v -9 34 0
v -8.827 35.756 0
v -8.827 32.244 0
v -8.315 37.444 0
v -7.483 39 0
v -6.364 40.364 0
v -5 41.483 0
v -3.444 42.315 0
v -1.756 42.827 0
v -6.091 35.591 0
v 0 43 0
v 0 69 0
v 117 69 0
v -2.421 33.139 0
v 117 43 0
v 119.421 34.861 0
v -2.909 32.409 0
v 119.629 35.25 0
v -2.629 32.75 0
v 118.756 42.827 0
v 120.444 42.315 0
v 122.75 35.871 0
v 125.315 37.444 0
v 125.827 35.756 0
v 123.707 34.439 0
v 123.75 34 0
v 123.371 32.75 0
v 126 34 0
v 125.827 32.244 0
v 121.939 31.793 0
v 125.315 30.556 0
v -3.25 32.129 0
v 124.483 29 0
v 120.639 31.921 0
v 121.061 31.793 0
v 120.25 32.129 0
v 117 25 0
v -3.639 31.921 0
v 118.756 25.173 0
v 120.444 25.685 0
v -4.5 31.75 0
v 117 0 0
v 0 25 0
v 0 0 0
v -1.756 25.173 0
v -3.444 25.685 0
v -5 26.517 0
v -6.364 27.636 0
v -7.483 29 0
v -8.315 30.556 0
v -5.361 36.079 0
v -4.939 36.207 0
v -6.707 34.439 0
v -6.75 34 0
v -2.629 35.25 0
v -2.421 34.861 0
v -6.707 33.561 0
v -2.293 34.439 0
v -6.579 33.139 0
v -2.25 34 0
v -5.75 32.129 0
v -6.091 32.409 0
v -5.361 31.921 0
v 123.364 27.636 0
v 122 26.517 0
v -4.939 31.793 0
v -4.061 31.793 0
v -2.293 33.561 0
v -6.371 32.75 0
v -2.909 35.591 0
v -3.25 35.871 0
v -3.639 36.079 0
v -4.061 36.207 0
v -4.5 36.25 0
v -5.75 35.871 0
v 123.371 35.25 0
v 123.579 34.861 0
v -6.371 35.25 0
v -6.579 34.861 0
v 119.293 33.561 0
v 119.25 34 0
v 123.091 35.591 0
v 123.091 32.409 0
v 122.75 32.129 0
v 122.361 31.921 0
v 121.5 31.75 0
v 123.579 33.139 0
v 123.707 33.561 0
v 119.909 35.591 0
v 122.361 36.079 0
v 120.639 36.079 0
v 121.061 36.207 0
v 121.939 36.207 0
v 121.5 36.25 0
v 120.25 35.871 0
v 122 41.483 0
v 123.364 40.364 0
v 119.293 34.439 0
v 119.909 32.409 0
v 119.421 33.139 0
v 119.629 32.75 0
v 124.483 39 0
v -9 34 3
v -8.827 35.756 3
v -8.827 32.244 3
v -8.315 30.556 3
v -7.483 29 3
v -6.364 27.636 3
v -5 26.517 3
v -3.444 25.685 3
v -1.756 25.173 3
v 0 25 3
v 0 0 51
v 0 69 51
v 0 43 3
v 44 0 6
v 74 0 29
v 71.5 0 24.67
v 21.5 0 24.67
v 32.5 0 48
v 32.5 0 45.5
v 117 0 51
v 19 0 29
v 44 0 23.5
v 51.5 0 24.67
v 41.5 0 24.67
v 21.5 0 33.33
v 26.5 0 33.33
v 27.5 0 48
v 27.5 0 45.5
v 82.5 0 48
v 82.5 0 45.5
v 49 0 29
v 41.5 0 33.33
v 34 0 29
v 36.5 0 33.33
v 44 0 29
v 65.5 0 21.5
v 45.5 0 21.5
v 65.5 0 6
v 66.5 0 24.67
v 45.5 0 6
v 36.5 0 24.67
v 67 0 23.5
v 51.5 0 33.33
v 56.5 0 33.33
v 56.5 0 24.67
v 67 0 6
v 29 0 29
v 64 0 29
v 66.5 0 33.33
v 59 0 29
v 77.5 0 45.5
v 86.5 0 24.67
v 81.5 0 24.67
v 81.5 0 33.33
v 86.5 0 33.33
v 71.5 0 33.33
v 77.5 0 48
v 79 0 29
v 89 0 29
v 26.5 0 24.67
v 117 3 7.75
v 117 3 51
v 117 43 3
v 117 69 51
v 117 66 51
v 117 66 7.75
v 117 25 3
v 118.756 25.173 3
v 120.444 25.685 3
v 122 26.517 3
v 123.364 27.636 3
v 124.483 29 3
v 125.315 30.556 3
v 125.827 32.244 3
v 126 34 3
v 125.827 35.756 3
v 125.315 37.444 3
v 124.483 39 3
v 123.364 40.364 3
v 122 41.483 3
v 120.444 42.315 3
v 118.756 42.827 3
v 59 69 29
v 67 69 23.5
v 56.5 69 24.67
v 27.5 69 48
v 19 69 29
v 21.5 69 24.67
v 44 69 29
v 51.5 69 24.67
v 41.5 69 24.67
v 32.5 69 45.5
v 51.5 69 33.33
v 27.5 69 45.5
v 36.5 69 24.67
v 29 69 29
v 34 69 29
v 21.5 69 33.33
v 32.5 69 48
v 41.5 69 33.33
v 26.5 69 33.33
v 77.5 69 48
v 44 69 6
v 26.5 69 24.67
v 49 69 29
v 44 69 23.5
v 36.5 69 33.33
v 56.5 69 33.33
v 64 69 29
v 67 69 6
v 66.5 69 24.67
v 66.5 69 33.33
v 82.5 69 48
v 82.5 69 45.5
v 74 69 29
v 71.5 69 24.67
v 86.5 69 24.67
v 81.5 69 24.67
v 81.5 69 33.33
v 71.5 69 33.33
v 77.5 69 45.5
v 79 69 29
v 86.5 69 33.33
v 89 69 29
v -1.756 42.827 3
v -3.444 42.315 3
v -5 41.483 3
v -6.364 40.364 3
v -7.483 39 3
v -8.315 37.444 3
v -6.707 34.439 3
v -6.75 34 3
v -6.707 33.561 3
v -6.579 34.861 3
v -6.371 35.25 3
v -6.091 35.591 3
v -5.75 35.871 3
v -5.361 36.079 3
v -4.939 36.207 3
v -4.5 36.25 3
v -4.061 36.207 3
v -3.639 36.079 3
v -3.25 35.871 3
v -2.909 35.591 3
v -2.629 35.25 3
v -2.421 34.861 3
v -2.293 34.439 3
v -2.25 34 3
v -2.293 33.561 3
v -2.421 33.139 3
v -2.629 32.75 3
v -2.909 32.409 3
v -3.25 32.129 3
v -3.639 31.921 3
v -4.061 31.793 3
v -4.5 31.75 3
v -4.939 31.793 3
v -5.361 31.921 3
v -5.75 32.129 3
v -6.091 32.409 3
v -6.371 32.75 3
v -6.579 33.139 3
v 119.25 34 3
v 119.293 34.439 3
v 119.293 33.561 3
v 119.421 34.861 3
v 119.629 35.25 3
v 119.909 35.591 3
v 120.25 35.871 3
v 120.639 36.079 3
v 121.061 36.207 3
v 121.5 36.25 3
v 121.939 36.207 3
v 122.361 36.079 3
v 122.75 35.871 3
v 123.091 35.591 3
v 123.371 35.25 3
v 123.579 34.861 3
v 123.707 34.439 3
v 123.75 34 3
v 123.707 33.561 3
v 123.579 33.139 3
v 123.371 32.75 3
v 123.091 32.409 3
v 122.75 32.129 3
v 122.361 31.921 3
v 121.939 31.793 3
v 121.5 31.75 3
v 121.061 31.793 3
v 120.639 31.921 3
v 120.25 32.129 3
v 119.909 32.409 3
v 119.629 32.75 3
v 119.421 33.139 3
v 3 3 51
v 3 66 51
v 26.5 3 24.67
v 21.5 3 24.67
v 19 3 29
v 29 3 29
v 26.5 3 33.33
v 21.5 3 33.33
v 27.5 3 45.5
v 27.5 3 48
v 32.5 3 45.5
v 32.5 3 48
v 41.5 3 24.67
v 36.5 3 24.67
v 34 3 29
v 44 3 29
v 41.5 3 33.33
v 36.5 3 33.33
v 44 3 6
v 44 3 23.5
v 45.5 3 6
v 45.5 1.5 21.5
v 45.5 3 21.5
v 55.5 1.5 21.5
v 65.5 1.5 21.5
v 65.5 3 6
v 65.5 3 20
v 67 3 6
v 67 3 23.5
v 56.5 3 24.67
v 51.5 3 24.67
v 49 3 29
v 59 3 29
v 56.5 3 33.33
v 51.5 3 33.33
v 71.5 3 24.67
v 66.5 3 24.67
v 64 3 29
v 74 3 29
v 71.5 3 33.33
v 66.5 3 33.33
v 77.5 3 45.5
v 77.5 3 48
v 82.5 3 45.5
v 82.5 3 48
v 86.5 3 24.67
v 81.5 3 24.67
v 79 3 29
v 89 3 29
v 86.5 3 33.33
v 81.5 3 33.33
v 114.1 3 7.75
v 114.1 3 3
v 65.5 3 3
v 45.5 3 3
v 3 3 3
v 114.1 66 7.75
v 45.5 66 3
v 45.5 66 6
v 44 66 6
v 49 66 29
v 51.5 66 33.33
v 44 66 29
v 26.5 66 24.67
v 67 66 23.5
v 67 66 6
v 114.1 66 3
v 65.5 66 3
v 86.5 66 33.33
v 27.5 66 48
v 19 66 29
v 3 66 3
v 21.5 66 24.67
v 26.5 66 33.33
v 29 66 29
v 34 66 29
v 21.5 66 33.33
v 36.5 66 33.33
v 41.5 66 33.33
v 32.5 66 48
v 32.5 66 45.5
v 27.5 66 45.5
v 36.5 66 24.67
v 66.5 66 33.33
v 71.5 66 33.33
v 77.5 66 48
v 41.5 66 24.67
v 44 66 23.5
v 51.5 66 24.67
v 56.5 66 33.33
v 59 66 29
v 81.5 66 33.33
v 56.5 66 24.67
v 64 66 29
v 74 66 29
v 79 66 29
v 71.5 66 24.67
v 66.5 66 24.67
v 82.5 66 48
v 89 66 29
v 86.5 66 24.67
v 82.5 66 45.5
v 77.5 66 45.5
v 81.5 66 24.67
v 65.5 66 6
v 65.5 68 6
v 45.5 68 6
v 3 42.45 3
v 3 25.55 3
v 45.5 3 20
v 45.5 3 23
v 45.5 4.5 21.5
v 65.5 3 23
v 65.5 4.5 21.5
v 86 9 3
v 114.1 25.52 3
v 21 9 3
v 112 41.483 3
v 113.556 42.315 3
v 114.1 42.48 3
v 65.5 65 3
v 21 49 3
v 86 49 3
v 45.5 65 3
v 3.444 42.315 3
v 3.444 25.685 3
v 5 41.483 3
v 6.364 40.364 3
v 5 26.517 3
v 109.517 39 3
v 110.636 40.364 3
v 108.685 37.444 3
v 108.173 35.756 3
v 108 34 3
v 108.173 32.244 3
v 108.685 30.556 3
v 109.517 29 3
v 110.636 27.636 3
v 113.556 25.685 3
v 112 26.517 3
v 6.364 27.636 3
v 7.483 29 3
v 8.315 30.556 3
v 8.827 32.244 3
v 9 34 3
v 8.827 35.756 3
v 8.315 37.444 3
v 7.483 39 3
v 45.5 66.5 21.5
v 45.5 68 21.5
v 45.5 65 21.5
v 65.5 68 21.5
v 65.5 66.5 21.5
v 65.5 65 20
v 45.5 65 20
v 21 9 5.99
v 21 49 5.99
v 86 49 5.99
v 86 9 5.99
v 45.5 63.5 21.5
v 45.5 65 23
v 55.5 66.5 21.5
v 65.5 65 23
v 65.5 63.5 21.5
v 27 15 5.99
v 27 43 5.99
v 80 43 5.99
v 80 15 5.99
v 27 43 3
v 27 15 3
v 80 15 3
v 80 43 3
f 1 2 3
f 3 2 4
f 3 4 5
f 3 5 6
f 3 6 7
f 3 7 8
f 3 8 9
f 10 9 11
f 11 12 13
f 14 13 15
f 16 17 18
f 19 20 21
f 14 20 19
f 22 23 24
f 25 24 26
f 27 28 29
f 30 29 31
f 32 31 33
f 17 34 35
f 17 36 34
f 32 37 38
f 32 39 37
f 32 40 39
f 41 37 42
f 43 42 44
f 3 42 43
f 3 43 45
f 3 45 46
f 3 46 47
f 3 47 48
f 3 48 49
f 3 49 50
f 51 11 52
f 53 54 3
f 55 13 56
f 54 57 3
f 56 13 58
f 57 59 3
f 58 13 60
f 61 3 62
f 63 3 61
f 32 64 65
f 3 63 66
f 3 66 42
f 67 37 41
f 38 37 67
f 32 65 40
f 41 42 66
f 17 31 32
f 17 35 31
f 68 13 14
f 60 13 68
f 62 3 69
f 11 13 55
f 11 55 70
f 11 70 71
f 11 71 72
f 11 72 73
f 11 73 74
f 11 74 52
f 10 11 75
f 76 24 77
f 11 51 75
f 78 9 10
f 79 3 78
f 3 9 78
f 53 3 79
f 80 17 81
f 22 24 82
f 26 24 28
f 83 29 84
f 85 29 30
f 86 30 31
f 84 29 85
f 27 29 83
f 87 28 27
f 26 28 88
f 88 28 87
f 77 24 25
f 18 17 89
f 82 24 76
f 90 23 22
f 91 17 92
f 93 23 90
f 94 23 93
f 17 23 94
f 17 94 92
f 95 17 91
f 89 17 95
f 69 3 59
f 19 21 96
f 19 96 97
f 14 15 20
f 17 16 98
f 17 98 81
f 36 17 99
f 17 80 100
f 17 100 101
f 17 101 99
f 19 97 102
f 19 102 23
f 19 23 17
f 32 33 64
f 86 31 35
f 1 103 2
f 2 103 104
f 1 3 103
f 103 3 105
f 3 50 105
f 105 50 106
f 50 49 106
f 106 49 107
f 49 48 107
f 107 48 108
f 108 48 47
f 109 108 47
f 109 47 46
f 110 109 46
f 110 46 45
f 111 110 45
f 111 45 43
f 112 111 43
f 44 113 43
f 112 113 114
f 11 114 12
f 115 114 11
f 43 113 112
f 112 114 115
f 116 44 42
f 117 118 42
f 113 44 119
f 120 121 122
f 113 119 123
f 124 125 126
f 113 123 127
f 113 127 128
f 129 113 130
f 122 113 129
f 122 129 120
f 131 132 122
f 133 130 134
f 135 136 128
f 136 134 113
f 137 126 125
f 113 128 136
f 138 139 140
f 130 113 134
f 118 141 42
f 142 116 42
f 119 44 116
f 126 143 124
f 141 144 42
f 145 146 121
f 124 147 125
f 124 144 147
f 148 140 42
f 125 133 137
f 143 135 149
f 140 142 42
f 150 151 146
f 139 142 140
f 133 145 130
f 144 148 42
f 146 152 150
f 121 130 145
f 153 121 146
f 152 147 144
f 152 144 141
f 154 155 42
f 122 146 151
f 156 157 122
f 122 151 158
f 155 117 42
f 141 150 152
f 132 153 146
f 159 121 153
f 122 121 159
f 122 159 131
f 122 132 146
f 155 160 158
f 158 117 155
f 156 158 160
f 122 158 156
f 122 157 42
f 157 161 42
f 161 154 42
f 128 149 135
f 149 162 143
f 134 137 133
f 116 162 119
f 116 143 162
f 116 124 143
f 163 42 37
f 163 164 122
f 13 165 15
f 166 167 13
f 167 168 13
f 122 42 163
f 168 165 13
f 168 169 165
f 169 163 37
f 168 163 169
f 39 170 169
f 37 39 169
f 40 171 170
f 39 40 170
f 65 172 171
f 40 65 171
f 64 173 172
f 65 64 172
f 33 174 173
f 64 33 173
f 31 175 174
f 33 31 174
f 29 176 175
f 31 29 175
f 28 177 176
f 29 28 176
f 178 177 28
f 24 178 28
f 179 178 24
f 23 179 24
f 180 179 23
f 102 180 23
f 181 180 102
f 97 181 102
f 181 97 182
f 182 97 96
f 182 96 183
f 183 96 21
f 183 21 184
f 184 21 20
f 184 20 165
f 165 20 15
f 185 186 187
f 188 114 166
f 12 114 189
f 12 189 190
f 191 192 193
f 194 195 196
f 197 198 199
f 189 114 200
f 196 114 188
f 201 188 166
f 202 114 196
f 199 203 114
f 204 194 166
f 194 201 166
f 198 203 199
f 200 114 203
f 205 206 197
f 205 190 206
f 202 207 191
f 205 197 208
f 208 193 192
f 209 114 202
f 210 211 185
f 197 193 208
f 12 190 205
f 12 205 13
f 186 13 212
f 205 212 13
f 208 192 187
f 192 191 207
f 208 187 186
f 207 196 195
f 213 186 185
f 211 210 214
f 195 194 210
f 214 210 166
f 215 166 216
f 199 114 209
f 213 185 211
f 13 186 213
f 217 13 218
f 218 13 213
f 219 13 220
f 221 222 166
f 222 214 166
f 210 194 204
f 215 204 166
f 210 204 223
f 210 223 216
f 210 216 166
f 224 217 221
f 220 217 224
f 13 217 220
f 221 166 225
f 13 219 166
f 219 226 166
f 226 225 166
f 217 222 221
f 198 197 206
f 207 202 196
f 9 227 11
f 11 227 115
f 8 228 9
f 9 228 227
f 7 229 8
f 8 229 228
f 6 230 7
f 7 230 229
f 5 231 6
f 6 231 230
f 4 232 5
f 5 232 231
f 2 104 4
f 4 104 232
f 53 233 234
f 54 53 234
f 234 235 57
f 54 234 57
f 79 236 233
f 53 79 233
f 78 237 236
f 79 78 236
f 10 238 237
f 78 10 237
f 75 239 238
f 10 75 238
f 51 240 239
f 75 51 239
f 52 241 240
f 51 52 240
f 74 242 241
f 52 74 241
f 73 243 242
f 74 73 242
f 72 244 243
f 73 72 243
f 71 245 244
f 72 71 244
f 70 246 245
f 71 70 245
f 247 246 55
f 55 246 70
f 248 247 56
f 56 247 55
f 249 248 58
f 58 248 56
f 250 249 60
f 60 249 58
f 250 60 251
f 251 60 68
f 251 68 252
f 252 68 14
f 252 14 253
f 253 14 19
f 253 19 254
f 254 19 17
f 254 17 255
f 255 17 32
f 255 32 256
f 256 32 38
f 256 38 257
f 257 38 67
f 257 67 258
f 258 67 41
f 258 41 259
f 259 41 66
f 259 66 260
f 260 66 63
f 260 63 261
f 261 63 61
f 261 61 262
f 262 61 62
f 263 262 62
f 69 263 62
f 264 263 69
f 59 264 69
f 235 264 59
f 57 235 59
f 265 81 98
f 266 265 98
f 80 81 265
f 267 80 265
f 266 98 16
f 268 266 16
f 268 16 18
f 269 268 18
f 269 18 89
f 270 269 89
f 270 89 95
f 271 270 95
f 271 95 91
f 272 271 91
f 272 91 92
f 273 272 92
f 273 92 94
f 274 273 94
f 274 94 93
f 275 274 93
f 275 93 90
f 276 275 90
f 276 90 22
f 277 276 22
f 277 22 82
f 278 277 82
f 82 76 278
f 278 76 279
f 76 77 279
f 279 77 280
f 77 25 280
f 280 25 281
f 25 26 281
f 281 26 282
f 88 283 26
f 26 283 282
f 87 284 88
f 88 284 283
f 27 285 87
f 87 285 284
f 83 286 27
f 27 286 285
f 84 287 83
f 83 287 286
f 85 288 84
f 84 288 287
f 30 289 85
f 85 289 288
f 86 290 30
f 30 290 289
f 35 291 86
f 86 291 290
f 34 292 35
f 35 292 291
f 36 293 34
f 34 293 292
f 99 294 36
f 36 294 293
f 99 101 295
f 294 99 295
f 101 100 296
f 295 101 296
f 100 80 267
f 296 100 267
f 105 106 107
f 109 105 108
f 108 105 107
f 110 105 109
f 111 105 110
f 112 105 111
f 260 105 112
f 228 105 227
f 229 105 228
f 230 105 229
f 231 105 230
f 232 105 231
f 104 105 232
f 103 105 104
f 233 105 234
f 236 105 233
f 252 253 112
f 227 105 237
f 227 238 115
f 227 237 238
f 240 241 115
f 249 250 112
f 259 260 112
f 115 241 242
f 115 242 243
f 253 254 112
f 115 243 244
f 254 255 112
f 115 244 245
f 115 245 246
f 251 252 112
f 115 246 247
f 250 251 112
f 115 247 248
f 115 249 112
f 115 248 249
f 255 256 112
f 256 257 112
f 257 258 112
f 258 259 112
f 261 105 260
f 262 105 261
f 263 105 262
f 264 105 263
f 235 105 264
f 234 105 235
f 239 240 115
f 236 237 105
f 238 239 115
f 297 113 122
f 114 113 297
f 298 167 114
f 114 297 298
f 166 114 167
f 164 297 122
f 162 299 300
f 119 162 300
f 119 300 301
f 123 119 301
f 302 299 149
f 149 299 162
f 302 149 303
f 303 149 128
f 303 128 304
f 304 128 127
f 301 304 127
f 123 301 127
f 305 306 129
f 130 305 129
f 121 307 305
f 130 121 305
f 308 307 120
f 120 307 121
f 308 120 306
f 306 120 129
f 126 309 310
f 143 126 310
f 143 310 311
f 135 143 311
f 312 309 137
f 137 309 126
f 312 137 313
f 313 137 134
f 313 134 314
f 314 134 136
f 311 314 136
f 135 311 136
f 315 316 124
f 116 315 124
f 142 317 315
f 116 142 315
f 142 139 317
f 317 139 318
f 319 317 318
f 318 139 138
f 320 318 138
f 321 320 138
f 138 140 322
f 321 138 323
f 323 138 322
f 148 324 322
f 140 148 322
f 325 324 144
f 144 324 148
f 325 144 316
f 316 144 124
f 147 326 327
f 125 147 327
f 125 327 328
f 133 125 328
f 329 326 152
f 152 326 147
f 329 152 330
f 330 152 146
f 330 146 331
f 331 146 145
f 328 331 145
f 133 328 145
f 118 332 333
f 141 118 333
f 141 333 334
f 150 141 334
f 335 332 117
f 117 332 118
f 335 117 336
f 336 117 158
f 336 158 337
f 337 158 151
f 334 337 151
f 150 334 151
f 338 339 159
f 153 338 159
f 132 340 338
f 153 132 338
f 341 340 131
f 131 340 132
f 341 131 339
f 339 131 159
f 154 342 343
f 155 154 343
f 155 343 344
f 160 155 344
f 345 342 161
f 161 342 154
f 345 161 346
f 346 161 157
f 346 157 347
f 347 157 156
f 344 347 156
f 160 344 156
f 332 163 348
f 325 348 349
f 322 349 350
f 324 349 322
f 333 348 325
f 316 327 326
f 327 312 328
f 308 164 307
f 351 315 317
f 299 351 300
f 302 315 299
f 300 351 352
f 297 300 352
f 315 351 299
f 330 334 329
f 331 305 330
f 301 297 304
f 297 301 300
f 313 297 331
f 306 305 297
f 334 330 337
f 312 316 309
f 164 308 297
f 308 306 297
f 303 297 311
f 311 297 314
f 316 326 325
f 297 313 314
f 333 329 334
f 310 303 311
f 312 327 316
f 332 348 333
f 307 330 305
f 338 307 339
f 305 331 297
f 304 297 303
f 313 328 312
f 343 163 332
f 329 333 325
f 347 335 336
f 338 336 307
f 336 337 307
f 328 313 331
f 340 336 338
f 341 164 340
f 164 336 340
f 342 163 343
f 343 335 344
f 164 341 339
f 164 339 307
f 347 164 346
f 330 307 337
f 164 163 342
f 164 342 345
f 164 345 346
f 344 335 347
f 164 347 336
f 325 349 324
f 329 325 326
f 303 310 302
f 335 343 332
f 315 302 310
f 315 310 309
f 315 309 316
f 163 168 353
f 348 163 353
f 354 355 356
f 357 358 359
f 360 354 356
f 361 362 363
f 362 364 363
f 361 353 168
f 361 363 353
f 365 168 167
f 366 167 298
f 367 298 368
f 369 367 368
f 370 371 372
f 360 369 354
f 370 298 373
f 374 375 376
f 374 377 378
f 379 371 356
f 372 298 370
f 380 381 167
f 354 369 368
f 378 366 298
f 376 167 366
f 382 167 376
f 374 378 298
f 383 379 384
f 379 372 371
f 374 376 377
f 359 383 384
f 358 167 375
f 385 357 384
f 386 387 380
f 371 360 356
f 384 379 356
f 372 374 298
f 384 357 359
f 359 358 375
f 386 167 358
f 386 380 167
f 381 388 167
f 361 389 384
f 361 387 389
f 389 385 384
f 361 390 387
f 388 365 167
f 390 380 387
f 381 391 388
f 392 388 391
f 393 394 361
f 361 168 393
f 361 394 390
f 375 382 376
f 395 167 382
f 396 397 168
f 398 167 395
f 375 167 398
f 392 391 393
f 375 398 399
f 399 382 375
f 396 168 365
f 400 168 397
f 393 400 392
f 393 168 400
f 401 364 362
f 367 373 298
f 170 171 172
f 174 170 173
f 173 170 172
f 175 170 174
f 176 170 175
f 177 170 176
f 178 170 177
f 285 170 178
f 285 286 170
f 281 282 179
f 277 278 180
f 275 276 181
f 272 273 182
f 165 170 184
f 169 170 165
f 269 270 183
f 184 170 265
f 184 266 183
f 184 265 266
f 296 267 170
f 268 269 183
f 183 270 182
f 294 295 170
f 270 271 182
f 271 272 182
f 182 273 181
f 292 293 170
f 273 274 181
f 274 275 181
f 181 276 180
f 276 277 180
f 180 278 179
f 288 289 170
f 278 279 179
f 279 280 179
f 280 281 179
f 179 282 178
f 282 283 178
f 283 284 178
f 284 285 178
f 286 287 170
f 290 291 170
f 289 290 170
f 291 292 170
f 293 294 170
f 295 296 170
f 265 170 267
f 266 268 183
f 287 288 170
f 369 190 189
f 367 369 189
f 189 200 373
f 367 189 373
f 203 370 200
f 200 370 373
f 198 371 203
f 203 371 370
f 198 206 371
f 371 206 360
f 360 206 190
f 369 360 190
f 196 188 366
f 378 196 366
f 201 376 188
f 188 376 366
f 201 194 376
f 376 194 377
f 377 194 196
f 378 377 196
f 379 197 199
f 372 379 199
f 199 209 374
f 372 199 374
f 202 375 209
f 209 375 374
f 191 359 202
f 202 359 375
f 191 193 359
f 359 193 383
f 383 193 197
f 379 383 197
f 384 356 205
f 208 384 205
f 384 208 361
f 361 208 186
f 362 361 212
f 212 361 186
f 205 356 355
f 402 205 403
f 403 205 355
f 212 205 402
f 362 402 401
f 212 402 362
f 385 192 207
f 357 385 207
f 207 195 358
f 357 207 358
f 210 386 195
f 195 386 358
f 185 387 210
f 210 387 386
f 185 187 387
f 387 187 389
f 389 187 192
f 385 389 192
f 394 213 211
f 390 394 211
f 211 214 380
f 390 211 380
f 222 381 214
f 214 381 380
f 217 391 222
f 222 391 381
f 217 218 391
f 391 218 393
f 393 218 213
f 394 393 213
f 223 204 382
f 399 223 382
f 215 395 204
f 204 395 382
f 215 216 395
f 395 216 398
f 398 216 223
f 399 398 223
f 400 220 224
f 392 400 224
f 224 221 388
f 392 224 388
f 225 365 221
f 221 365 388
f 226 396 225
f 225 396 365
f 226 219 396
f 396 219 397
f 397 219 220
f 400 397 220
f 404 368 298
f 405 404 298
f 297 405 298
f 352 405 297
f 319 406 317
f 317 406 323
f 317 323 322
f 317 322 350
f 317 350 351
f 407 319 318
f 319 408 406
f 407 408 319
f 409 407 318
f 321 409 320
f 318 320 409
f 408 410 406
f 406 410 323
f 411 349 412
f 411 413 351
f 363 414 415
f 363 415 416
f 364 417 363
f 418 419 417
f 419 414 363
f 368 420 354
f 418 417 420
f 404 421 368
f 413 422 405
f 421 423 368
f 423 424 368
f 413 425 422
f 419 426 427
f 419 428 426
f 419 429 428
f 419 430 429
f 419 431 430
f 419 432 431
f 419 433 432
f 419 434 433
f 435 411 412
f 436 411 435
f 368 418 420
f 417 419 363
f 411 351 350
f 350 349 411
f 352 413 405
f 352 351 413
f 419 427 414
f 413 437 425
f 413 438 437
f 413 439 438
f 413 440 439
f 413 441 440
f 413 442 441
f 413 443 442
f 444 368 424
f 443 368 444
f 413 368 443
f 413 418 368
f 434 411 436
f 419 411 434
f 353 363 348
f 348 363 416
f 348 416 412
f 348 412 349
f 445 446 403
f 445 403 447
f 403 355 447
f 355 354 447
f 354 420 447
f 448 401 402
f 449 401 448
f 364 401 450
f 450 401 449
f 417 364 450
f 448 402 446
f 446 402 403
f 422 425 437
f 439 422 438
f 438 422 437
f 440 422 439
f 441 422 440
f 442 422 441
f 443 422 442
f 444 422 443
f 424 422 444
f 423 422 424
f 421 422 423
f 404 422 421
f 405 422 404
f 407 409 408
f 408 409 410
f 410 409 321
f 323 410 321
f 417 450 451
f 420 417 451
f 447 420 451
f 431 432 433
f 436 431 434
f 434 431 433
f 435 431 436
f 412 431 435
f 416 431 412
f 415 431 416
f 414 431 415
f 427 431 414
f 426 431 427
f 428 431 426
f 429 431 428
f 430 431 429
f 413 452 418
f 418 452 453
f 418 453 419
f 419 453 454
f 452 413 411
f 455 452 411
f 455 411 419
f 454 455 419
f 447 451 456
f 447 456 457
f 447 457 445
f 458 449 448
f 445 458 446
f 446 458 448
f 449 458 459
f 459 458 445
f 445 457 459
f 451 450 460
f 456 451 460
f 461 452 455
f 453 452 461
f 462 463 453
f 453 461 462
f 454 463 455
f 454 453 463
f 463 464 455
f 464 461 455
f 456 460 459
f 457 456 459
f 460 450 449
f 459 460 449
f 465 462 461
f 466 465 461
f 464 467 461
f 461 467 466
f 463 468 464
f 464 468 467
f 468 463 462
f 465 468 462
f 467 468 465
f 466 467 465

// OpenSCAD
// file: configuration.scad
rodSize  = 10;	//10 or 8; sets linear bearing size as well.
rodSeparation = 64;	//how far between rod centers
wall = 5;	//general wall thicknesses
boltSize = 4;	//3 for m3, 4 for m4
wingLength = rodSeparation;	//how long the wing supports are for the motor
				//and idler mounts.

//generic slop specs
rodSlop  = 1.0;	//how much bigger to make smooth rod holes
boltSlop = 0.5;	//how much bigger to make bolt holes
nutSlop  = 0.6;	//how much bigger to make nut holes


//lm10uu specs
lm_dia = 20;
lm_height = 30;


//joint specs
tubeDia = 6;
jointHeight=boltSize*2;
jointInner=jointHeight / cos(30);
jointOuter=jointInner+boltSize+boltSlop;


//motor/idler specs
idlerShaft = 4.5;
motorShaft = 12.5;
motorMin = 12.5;
motorMax = 16.5;

tabGap = 1;
tabWidth = 6;


m8Dia = 8+boltSlop;
m8Rad = m8Dia/2;
m8NutDia = 15+nutSlop;
m8NutRad = m8NutDia/2;

nutDia = 8.1+nutSlop;
nutRad = nutDia/2;
boltDia = 4+boltSlop;
boltRad = boltDia/2;
// main file
include <configuration.scad>

ard_x = 111;
ard_y = 62;
ard_z = 42;

clip_x = 20;
clip_z = 14.5+1+3;

poff_x = 18;
poff_y =6;
plat_x = 65;
plat_y = 40;
plat_z = 3;

air_r = 5;
air_x = 16+air_r;
air_z = 18+air_r;

fan_holes = 50;
fan_size = 60;
fan_w = 10;
%translate([ard_x/2, ard_y/2+wall, ard_z+wall+fan_w/2]) cube([fan_size,fan_size,fan_w], center=true);
echo("height", ard_z+wall+fan_w);


wall=3;
pcb=1.75;

$fn=32;

module arduinobox(){
	union(){
	    difference(){
	          cube([ard_x+wall*2, ard_y+wall*2+1, ard_z+wall*2+plat_z]);

		//hollow it out
		translate([wall, wall, wall]) cube([ard_x+.1, ard_y+1, ard_z+plat_z+wall+.1]);
		translate([wall*2, wall, wall+plat_z+pcb]) cube([ard_x+.1, ard_y+1, ard_z+plat_z+wall+.1]);

		//cutout for clips
		for(i=[0:1]) translate([0,i*(ard_y+wall*2),0]) mirror([0,i,0]){
		    translate([ard_x/2-wall/2-clip_x/2, -wall/2, wall*2]) cube([clip_x+wall, wall*2, clip_z+plat_z-wall-1]);
	    	}

		//some air holes
		for(i=[wall+air_x:air_r*3:ard_x-air_x]){
		    translate([i,-1,wall+plat_z+air_z]) rotate([-90,0,0]) cylinder(r=air_r, h=ard_x, $fn=6);
		}

		//zip tie holes to mount fan
		for(i=[ard_x/2-wall-fan_holes/2:fan_holes:ard_x]){
		    translate([i,-1,ard_z+wall+plat_z]) rotate([-90,0,0]) cube([5,2.5,ard_x]);
		}
	    }

	    //clips
	    for(i=[0:1]) translate([0,i*(ard_y+wall*2),0]) mirror([0,i,0]){
	       #translate([ard_x/2, wall, clip_z+plat_z]) rotate([0,90,0]) cylinder(r=wall/2, h=clip_x, center=true, $fn=4); //cube([clip_x, wall, wall], center=true);
	       translate([ard_x/2-clip_x/2, 0, 0]) cube([clip_x, wall, clip_z+plat_z]);
	    }

	    //platform
	    translate([poff_x+wall, poff_y+wall, wall-.01]) difference(){ 
		cube([plat_x, plat_y, plat_z]);
		translate([wall*2, wall*2, 0]) cube([plat_x-wall*4, plat_y-wall*4, plat_z+.01]);
	    }
	    
	     //mounting lugs
	    for(i=[0,1]) translate([i*(ard_x+wall*2),ard_y/2+wall, 0]) mirror([1*i,0,0]){
		difference() {
		    cylinder(r=boltDia*2, h=wall);
		    translate([-boltDia,0,-.1]) cylinder(r=boltRad, h=wall+1);
		}
	    }
	}
}

//rotate for printing
arduinobox();
